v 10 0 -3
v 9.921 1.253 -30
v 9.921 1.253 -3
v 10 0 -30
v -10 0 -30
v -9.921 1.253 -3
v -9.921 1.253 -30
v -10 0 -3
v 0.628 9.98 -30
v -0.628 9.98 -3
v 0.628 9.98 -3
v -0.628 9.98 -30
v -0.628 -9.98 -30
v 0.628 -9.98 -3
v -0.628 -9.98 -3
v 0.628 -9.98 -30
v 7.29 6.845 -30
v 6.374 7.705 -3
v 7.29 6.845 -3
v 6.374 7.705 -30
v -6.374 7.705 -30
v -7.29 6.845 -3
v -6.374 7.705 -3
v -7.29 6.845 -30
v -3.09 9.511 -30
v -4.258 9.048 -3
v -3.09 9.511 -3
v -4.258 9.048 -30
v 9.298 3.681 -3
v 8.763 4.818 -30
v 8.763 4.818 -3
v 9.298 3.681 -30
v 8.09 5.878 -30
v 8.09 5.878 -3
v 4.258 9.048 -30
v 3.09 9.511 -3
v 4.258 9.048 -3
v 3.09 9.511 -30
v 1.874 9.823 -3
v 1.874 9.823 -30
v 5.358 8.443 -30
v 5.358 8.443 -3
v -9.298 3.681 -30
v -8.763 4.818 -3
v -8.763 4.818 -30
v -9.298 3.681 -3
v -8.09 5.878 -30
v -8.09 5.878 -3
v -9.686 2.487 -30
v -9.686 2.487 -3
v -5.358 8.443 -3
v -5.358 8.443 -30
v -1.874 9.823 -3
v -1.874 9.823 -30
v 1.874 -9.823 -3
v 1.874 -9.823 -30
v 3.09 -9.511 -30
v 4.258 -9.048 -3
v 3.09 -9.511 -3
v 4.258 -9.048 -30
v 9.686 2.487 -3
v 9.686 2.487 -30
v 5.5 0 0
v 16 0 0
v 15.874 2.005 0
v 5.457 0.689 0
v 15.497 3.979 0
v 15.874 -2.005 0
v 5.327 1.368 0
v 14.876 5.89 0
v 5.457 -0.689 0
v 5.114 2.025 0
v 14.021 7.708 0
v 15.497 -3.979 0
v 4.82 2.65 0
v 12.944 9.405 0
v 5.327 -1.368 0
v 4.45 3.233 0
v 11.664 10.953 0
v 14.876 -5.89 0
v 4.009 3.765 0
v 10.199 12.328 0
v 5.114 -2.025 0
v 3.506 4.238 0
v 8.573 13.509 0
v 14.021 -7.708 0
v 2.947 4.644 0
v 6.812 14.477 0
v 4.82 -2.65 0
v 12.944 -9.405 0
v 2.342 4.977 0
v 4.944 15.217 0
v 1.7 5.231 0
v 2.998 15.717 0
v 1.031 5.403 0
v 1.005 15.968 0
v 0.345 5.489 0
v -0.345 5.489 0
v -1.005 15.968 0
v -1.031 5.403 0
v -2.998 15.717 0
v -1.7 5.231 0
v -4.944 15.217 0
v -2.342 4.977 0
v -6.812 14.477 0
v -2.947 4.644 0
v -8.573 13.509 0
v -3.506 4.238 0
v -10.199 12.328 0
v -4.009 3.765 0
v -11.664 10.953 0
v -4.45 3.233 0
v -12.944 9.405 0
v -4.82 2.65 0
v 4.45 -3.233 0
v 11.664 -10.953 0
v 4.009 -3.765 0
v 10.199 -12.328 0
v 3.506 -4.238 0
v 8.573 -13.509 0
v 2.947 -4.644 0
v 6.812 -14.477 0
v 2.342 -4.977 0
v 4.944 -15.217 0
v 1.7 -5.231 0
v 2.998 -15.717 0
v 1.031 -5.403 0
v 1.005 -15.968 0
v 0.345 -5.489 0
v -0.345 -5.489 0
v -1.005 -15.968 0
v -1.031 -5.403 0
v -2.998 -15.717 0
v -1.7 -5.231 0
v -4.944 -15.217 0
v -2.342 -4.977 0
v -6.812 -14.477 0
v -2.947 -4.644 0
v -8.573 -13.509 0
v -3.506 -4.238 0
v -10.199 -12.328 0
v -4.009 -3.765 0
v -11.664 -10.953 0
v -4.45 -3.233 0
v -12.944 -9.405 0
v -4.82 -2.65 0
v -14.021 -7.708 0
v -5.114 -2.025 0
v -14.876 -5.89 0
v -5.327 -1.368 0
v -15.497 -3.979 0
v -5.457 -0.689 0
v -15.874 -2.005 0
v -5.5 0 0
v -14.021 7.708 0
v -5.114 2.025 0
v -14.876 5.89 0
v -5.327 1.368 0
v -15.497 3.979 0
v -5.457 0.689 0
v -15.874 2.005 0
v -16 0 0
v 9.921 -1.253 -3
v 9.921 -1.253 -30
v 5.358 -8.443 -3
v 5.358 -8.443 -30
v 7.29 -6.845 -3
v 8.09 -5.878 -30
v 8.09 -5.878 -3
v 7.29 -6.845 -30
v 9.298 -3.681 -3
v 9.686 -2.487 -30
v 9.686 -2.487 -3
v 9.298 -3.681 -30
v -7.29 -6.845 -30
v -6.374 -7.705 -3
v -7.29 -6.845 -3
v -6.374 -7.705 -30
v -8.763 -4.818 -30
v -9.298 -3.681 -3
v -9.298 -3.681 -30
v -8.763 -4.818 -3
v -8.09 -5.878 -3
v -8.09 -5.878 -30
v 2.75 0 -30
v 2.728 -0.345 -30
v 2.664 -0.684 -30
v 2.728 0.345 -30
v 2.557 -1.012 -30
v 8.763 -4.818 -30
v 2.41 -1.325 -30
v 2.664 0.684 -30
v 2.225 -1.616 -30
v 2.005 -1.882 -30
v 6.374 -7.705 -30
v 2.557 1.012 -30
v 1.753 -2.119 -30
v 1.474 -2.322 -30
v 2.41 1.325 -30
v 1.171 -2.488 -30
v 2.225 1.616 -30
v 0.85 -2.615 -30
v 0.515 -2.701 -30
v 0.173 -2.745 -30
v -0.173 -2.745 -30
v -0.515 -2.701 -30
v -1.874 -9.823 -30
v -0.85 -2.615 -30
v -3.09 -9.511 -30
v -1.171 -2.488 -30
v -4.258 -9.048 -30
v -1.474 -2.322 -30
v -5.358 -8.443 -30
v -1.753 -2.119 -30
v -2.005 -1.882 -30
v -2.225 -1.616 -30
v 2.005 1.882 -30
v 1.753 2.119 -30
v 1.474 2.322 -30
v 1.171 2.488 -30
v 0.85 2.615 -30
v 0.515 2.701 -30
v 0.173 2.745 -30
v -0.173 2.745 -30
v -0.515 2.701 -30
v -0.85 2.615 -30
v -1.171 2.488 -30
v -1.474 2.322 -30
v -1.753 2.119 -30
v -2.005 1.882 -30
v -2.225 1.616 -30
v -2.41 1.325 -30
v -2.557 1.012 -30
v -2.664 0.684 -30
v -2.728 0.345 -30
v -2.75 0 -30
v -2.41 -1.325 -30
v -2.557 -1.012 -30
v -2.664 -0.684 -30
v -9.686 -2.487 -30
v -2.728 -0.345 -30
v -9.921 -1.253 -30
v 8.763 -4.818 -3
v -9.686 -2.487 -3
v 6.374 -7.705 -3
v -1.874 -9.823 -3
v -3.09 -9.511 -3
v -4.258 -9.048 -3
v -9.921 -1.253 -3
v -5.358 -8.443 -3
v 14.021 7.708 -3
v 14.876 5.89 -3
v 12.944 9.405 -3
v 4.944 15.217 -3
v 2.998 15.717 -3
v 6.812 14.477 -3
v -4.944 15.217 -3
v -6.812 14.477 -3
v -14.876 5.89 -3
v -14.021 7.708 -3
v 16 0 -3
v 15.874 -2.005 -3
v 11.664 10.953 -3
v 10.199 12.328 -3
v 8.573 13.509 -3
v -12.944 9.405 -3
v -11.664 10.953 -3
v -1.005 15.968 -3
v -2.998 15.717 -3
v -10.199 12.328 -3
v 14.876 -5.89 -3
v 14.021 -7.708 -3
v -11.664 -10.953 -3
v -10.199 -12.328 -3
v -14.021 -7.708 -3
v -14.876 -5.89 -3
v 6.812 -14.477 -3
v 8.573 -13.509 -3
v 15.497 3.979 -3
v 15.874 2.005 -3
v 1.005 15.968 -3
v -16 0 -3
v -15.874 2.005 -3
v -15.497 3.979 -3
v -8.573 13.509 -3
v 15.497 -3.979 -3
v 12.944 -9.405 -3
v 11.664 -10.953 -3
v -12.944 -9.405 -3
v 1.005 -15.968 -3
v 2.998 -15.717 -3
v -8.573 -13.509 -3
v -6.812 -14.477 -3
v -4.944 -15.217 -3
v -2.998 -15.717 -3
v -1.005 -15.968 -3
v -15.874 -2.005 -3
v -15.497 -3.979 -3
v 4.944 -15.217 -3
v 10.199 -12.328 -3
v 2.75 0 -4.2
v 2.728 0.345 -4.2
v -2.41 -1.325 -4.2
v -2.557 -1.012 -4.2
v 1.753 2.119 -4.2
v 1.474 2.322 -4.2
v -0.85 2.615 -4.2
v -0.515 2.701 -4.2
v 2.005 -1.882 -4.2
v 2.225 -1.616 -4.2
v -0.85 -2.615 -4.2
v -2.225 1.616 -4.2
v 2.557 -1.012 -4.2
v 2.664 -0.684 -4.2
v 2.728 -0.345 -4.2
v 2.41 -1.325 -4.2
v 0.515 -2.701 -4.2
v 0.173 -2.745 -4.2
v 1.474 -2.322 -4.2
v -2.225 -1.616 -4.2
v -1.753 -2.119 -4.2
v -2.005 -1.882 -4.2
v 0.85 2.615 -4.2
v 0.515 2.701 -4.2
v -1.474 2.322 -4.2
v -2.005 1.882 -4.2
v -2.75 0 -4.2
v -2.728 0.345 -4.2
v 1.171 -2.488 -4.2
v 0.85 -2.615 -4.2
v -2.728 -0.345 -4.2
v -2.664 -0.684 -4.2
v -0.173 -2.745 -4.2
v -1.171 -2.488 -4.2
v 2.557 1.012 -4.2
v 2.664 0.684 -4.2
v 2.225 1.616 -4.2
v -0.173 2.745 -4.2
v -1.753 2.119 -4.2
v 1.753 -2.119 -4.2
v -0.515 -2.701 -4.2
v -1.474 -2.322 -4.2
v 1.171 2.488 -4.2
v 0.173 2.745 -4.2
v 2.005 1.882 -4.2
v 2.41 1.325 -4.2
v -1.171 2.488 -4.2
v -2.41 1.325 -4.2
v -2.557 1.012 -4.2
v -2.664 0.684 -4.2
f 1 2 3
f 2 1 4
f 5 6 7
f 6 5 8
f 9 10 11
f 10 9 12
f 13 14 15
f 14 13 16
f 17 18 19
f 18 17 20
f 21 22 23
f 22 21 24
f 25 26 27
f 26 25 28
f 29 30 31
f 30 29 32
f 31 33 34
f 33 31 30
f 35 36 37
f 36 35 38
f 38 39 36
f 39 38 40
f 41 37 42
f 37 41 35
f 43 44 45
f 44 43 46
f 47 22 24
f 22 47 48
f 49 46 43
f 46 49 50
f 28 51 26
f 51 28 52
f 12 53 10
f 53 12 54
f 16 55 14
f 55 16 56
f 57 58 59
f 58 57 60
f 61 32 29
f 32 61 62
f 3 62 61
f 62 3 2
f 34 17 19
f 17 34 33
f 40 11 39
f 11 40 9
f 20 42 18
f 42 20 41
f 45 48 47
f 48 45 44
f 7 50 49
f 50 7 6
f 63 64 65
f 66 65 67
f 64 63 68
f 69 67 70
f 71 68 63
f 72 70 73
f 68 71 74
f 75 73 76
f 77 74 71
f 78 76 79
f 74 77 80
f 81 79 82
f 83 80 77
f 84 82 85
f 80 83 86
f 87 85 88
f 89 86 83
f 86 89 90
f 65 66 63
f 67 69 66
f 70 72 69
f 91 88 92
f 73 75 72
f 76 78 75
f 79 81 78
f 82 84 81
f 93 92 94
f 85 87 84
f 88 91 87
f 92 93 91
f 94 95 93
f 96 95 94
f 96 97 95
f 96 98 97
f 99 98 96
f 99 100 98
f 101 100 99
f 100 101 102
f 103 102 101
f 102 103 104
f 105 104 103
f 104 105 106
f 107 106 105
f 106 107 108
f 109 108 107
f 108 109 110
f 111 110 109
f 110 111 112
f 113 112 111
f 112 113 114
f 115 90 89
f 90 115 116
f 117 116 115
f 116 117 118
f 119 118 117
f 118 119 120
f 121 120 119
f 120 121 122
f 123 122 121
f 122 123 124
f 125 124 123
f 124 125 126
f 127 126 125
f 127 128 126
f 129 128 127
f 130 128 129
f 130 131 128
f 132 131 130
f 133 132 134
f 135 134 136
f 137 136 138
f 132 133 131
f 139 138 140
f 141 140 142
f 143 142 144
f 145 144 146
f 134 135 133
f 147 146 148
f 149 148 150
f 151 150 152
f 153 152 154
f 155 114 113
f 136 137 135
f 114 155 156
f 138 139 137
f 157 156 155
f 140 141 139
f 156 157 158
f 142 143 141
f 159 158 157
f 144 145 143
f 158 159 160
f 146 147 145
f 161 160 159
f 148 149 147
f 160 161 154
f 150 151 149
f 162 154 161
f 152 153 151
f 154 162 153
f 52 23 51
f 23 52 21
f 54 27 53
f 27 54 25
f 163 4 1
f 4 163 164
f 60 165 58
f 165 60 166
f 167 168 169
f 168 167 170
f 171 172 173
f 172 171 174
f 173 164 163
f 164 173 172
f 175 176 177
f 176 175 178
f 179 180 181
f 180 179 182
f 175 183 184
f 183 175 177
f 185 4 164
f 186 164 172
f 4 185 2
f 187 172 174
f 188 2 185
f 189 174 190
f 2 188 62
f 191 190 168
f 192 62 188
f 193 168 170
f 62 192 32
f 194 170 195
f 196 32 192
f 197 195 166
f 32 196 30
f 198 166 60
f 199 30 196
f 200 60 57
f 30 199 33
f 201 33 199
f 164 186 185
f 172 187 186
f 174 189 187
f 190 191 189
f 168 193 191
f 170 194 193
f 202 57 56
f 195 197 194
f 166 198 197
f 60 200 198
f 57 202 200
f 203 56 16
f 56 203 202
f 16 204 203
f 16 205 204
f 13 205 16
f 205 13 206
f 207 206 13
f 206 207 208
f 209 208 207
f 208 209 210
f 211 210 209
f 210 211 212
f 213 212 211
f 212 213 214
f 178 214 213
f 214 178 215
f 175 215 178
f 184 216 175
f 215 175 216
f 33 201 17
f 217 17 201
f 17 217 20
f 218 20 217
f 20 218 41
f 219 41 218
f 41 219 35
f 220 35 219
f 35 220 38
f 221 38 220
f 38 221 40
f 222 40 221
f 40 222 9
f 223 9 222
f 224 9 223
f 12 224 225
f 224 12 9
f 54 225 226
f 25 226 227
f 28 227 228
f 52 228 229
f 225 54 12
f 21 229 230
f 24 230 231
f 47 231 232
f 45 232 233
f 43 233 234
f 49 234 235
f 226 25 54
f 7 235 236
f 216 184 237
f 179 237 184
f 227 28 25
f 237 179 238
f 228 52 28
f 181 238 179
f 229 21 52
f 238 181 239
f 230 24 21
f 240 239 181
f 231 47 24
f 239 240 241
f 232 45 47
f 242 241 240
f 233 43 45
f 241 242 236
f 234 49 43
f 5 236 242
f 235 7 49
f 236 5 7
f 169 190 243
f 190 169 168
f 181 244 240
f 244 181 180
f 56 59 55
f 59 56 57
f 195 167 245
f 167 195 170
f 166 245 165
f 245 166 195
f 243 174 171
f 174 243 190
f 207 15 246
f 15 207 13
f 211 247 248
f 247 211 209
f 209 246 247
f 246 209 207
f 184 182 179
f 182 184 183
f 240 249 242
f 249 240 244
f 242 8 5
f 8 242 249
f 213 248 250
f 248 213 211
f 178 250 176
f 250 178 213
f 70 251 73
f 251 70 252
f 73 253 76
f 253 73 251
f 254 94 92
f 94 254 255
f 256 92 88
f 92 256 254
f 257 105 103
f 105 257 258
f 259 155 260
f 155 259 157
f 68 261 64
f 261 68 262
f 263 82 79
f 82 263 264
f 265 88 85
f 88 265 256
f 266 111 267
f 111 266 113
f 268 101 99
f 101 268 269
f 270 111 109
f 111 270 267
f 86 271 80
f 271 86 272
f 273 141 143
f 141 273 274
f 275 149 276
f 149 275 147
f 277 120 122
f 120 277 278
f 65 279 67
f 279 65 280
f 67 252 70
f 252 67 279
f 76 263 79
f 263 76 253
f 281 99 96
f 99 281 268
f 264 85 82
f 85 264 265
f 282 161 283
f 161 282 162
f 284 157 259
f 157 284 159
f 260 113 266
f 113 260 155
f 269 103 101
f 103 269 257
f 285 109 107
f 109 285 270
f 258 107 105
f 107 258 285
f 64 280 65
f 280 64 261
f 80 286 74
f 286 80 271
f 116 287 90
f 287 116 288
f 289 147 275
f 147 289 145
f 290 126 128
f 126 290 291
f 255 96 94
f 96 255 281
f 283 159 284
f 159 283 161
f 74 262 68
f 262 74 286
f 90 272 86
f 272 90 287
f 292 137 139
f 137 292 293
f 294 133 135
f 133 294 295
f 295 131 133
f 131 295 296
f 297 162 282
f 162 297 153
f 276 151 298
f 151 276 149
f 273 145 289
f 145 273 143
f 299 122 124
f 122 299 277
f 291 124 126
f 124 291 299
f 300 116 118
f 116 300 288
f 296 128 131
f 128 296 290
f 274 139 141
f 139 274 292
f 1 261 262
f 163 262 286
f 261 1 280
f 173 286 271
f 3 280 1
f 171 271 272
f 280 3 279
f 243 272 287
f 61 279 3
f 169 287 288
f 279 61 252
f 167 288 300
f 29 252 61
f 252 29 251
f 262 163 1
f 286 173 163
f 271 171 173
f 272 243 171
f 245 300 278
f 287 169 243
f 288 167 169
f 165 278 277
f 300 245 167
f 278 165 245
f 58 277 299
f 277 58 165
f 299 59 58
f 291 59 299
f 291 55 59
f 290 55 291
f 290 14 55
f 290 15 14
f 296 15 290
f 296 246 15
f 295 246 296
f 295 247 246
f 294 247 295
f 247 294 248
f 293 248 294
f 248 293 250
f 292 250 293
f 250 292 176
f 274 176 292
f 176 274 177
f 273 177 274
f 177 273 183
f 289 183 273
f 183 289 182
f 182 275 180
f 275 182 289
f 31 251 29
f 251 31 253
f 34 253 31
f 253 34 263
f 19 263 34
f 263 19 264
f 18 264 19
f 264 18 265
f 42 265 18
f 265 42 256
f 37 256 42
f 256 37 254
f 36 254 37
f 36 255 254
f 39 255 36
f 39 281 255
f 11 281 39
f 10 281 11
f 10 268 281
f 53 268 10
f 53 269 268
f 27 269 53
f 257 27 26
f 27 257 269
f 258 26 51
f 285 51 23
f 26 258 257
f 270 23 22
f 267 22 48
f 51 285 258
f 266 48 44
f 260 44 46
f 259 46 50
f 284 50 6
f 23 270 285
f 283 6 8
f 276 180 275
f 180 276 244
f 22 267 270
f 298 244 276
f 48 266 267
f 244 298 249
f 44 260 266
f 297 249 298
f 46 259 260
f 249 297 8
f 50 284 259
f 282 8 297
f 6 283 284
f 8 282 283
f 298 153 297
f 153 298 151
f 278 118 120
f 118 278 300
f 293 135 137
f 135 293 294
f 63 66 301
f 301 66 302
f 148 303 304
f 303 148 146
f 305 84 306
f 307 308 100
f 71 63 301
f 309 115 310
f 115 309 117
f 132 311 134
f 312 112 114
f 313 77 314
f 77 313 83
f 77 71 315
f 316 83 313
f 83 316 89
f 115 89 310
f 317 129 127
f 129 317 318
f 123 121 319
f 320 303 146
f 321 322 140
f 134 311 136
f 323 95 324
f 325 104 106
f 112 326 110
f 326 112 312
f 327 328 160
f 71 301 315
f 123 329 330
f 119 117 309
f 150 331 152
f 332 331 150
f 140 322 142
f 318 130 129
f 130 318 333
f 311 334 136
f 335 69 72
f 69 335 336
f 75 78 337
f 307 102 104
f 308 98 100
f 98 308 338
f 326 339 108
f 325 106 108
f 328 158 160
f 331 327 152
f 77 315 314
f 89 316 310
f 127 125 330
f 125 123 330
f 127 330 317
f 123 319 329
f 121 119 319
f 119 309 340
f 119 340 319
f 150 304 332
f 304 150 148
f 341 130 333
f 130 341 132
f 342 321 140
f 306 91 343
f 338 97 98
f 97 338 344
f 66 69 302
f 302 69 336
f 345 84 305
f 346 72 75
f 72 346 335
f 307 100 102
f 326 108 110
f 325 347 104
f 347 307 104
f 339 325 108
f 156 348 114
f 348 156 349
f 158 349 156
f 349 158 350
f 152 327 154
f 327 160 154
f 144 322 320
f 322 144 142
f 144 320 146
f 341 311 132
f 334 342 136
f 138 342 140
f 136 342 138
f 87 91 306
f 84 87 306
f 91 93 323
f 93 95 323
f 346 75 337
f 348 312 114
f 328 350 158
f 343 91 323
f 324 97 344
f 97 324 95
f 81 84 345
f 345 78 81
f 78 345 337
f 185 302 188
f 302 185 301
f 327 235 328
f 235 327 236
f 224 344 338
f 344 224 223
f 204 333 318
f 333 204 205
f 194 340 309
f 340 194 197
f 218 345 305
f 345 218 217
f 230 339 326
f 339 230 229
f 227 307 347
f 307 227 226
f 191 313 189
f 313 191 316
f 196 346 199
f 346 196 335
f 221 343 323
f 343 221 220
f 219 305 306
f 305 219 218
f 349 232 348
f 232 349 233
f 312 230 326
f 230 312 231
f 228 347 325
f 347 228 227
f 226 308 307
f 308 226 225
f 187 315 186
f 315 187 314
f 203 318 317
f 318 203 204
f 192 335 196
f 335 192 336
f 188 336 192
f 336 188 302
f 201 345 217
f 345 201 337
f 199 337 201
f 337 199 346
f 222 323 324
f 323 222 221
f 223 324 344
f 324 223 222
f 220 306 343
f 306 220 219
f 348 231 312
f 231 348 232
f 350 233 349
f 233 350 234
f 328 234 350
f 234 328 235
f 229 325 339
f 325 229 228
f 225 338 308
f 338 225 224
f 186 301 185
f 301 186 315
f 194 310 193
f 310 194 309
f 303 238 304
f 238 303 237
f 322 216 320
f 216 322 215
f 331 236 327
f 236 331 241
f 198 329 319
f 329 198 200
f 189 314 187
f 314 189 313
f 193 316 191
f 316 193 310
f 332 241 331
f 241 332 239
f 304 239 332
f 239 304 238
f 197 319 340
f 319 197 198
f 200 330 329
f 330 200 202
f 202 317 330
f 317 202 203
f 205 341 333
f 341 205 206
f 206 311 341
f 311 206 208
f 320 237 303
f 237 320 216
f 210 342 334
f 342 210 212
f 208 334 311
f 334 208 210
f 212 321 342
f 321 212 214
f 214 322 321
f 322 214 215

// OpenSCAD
$fn = 50;


difference() {
	union() {
		translate(v = [0, 0, -30.0000000000]) {
			cylinder(h = 30, r = 10.0000000000);
		}
		translate(v = [0, 0, -3.0000000000]) {
			cylinder(h = 3, r = 16.0000000000);
		}
	}
	union() {
		translate(v = [0, 0, 0]) {
			rotate(a = [0, 0, 0]) {
				difference() {
					union() {
						#translate(v = [0, 0, -30.0000000000]) {
							cylinder(h = 30, r = 2.2500000000);
						}
						#translate(v = [0, 0, -4.2000000000]) {
							cylinder(h = 4.2000000000, r1 = 2.7500000000, r2 = 5.5000000000);
						}
						#translate(v = [0, 0, -30.0000000000]) {
							cylinder(h = 30, r = 2.7500000000);
						}
						#translate(v = [0, 0, -30.0000000000]) {
							cylinder(h = 30, r = 2.2500000000);
						}
					}
					union();
				}
			}
		}
	}
}
